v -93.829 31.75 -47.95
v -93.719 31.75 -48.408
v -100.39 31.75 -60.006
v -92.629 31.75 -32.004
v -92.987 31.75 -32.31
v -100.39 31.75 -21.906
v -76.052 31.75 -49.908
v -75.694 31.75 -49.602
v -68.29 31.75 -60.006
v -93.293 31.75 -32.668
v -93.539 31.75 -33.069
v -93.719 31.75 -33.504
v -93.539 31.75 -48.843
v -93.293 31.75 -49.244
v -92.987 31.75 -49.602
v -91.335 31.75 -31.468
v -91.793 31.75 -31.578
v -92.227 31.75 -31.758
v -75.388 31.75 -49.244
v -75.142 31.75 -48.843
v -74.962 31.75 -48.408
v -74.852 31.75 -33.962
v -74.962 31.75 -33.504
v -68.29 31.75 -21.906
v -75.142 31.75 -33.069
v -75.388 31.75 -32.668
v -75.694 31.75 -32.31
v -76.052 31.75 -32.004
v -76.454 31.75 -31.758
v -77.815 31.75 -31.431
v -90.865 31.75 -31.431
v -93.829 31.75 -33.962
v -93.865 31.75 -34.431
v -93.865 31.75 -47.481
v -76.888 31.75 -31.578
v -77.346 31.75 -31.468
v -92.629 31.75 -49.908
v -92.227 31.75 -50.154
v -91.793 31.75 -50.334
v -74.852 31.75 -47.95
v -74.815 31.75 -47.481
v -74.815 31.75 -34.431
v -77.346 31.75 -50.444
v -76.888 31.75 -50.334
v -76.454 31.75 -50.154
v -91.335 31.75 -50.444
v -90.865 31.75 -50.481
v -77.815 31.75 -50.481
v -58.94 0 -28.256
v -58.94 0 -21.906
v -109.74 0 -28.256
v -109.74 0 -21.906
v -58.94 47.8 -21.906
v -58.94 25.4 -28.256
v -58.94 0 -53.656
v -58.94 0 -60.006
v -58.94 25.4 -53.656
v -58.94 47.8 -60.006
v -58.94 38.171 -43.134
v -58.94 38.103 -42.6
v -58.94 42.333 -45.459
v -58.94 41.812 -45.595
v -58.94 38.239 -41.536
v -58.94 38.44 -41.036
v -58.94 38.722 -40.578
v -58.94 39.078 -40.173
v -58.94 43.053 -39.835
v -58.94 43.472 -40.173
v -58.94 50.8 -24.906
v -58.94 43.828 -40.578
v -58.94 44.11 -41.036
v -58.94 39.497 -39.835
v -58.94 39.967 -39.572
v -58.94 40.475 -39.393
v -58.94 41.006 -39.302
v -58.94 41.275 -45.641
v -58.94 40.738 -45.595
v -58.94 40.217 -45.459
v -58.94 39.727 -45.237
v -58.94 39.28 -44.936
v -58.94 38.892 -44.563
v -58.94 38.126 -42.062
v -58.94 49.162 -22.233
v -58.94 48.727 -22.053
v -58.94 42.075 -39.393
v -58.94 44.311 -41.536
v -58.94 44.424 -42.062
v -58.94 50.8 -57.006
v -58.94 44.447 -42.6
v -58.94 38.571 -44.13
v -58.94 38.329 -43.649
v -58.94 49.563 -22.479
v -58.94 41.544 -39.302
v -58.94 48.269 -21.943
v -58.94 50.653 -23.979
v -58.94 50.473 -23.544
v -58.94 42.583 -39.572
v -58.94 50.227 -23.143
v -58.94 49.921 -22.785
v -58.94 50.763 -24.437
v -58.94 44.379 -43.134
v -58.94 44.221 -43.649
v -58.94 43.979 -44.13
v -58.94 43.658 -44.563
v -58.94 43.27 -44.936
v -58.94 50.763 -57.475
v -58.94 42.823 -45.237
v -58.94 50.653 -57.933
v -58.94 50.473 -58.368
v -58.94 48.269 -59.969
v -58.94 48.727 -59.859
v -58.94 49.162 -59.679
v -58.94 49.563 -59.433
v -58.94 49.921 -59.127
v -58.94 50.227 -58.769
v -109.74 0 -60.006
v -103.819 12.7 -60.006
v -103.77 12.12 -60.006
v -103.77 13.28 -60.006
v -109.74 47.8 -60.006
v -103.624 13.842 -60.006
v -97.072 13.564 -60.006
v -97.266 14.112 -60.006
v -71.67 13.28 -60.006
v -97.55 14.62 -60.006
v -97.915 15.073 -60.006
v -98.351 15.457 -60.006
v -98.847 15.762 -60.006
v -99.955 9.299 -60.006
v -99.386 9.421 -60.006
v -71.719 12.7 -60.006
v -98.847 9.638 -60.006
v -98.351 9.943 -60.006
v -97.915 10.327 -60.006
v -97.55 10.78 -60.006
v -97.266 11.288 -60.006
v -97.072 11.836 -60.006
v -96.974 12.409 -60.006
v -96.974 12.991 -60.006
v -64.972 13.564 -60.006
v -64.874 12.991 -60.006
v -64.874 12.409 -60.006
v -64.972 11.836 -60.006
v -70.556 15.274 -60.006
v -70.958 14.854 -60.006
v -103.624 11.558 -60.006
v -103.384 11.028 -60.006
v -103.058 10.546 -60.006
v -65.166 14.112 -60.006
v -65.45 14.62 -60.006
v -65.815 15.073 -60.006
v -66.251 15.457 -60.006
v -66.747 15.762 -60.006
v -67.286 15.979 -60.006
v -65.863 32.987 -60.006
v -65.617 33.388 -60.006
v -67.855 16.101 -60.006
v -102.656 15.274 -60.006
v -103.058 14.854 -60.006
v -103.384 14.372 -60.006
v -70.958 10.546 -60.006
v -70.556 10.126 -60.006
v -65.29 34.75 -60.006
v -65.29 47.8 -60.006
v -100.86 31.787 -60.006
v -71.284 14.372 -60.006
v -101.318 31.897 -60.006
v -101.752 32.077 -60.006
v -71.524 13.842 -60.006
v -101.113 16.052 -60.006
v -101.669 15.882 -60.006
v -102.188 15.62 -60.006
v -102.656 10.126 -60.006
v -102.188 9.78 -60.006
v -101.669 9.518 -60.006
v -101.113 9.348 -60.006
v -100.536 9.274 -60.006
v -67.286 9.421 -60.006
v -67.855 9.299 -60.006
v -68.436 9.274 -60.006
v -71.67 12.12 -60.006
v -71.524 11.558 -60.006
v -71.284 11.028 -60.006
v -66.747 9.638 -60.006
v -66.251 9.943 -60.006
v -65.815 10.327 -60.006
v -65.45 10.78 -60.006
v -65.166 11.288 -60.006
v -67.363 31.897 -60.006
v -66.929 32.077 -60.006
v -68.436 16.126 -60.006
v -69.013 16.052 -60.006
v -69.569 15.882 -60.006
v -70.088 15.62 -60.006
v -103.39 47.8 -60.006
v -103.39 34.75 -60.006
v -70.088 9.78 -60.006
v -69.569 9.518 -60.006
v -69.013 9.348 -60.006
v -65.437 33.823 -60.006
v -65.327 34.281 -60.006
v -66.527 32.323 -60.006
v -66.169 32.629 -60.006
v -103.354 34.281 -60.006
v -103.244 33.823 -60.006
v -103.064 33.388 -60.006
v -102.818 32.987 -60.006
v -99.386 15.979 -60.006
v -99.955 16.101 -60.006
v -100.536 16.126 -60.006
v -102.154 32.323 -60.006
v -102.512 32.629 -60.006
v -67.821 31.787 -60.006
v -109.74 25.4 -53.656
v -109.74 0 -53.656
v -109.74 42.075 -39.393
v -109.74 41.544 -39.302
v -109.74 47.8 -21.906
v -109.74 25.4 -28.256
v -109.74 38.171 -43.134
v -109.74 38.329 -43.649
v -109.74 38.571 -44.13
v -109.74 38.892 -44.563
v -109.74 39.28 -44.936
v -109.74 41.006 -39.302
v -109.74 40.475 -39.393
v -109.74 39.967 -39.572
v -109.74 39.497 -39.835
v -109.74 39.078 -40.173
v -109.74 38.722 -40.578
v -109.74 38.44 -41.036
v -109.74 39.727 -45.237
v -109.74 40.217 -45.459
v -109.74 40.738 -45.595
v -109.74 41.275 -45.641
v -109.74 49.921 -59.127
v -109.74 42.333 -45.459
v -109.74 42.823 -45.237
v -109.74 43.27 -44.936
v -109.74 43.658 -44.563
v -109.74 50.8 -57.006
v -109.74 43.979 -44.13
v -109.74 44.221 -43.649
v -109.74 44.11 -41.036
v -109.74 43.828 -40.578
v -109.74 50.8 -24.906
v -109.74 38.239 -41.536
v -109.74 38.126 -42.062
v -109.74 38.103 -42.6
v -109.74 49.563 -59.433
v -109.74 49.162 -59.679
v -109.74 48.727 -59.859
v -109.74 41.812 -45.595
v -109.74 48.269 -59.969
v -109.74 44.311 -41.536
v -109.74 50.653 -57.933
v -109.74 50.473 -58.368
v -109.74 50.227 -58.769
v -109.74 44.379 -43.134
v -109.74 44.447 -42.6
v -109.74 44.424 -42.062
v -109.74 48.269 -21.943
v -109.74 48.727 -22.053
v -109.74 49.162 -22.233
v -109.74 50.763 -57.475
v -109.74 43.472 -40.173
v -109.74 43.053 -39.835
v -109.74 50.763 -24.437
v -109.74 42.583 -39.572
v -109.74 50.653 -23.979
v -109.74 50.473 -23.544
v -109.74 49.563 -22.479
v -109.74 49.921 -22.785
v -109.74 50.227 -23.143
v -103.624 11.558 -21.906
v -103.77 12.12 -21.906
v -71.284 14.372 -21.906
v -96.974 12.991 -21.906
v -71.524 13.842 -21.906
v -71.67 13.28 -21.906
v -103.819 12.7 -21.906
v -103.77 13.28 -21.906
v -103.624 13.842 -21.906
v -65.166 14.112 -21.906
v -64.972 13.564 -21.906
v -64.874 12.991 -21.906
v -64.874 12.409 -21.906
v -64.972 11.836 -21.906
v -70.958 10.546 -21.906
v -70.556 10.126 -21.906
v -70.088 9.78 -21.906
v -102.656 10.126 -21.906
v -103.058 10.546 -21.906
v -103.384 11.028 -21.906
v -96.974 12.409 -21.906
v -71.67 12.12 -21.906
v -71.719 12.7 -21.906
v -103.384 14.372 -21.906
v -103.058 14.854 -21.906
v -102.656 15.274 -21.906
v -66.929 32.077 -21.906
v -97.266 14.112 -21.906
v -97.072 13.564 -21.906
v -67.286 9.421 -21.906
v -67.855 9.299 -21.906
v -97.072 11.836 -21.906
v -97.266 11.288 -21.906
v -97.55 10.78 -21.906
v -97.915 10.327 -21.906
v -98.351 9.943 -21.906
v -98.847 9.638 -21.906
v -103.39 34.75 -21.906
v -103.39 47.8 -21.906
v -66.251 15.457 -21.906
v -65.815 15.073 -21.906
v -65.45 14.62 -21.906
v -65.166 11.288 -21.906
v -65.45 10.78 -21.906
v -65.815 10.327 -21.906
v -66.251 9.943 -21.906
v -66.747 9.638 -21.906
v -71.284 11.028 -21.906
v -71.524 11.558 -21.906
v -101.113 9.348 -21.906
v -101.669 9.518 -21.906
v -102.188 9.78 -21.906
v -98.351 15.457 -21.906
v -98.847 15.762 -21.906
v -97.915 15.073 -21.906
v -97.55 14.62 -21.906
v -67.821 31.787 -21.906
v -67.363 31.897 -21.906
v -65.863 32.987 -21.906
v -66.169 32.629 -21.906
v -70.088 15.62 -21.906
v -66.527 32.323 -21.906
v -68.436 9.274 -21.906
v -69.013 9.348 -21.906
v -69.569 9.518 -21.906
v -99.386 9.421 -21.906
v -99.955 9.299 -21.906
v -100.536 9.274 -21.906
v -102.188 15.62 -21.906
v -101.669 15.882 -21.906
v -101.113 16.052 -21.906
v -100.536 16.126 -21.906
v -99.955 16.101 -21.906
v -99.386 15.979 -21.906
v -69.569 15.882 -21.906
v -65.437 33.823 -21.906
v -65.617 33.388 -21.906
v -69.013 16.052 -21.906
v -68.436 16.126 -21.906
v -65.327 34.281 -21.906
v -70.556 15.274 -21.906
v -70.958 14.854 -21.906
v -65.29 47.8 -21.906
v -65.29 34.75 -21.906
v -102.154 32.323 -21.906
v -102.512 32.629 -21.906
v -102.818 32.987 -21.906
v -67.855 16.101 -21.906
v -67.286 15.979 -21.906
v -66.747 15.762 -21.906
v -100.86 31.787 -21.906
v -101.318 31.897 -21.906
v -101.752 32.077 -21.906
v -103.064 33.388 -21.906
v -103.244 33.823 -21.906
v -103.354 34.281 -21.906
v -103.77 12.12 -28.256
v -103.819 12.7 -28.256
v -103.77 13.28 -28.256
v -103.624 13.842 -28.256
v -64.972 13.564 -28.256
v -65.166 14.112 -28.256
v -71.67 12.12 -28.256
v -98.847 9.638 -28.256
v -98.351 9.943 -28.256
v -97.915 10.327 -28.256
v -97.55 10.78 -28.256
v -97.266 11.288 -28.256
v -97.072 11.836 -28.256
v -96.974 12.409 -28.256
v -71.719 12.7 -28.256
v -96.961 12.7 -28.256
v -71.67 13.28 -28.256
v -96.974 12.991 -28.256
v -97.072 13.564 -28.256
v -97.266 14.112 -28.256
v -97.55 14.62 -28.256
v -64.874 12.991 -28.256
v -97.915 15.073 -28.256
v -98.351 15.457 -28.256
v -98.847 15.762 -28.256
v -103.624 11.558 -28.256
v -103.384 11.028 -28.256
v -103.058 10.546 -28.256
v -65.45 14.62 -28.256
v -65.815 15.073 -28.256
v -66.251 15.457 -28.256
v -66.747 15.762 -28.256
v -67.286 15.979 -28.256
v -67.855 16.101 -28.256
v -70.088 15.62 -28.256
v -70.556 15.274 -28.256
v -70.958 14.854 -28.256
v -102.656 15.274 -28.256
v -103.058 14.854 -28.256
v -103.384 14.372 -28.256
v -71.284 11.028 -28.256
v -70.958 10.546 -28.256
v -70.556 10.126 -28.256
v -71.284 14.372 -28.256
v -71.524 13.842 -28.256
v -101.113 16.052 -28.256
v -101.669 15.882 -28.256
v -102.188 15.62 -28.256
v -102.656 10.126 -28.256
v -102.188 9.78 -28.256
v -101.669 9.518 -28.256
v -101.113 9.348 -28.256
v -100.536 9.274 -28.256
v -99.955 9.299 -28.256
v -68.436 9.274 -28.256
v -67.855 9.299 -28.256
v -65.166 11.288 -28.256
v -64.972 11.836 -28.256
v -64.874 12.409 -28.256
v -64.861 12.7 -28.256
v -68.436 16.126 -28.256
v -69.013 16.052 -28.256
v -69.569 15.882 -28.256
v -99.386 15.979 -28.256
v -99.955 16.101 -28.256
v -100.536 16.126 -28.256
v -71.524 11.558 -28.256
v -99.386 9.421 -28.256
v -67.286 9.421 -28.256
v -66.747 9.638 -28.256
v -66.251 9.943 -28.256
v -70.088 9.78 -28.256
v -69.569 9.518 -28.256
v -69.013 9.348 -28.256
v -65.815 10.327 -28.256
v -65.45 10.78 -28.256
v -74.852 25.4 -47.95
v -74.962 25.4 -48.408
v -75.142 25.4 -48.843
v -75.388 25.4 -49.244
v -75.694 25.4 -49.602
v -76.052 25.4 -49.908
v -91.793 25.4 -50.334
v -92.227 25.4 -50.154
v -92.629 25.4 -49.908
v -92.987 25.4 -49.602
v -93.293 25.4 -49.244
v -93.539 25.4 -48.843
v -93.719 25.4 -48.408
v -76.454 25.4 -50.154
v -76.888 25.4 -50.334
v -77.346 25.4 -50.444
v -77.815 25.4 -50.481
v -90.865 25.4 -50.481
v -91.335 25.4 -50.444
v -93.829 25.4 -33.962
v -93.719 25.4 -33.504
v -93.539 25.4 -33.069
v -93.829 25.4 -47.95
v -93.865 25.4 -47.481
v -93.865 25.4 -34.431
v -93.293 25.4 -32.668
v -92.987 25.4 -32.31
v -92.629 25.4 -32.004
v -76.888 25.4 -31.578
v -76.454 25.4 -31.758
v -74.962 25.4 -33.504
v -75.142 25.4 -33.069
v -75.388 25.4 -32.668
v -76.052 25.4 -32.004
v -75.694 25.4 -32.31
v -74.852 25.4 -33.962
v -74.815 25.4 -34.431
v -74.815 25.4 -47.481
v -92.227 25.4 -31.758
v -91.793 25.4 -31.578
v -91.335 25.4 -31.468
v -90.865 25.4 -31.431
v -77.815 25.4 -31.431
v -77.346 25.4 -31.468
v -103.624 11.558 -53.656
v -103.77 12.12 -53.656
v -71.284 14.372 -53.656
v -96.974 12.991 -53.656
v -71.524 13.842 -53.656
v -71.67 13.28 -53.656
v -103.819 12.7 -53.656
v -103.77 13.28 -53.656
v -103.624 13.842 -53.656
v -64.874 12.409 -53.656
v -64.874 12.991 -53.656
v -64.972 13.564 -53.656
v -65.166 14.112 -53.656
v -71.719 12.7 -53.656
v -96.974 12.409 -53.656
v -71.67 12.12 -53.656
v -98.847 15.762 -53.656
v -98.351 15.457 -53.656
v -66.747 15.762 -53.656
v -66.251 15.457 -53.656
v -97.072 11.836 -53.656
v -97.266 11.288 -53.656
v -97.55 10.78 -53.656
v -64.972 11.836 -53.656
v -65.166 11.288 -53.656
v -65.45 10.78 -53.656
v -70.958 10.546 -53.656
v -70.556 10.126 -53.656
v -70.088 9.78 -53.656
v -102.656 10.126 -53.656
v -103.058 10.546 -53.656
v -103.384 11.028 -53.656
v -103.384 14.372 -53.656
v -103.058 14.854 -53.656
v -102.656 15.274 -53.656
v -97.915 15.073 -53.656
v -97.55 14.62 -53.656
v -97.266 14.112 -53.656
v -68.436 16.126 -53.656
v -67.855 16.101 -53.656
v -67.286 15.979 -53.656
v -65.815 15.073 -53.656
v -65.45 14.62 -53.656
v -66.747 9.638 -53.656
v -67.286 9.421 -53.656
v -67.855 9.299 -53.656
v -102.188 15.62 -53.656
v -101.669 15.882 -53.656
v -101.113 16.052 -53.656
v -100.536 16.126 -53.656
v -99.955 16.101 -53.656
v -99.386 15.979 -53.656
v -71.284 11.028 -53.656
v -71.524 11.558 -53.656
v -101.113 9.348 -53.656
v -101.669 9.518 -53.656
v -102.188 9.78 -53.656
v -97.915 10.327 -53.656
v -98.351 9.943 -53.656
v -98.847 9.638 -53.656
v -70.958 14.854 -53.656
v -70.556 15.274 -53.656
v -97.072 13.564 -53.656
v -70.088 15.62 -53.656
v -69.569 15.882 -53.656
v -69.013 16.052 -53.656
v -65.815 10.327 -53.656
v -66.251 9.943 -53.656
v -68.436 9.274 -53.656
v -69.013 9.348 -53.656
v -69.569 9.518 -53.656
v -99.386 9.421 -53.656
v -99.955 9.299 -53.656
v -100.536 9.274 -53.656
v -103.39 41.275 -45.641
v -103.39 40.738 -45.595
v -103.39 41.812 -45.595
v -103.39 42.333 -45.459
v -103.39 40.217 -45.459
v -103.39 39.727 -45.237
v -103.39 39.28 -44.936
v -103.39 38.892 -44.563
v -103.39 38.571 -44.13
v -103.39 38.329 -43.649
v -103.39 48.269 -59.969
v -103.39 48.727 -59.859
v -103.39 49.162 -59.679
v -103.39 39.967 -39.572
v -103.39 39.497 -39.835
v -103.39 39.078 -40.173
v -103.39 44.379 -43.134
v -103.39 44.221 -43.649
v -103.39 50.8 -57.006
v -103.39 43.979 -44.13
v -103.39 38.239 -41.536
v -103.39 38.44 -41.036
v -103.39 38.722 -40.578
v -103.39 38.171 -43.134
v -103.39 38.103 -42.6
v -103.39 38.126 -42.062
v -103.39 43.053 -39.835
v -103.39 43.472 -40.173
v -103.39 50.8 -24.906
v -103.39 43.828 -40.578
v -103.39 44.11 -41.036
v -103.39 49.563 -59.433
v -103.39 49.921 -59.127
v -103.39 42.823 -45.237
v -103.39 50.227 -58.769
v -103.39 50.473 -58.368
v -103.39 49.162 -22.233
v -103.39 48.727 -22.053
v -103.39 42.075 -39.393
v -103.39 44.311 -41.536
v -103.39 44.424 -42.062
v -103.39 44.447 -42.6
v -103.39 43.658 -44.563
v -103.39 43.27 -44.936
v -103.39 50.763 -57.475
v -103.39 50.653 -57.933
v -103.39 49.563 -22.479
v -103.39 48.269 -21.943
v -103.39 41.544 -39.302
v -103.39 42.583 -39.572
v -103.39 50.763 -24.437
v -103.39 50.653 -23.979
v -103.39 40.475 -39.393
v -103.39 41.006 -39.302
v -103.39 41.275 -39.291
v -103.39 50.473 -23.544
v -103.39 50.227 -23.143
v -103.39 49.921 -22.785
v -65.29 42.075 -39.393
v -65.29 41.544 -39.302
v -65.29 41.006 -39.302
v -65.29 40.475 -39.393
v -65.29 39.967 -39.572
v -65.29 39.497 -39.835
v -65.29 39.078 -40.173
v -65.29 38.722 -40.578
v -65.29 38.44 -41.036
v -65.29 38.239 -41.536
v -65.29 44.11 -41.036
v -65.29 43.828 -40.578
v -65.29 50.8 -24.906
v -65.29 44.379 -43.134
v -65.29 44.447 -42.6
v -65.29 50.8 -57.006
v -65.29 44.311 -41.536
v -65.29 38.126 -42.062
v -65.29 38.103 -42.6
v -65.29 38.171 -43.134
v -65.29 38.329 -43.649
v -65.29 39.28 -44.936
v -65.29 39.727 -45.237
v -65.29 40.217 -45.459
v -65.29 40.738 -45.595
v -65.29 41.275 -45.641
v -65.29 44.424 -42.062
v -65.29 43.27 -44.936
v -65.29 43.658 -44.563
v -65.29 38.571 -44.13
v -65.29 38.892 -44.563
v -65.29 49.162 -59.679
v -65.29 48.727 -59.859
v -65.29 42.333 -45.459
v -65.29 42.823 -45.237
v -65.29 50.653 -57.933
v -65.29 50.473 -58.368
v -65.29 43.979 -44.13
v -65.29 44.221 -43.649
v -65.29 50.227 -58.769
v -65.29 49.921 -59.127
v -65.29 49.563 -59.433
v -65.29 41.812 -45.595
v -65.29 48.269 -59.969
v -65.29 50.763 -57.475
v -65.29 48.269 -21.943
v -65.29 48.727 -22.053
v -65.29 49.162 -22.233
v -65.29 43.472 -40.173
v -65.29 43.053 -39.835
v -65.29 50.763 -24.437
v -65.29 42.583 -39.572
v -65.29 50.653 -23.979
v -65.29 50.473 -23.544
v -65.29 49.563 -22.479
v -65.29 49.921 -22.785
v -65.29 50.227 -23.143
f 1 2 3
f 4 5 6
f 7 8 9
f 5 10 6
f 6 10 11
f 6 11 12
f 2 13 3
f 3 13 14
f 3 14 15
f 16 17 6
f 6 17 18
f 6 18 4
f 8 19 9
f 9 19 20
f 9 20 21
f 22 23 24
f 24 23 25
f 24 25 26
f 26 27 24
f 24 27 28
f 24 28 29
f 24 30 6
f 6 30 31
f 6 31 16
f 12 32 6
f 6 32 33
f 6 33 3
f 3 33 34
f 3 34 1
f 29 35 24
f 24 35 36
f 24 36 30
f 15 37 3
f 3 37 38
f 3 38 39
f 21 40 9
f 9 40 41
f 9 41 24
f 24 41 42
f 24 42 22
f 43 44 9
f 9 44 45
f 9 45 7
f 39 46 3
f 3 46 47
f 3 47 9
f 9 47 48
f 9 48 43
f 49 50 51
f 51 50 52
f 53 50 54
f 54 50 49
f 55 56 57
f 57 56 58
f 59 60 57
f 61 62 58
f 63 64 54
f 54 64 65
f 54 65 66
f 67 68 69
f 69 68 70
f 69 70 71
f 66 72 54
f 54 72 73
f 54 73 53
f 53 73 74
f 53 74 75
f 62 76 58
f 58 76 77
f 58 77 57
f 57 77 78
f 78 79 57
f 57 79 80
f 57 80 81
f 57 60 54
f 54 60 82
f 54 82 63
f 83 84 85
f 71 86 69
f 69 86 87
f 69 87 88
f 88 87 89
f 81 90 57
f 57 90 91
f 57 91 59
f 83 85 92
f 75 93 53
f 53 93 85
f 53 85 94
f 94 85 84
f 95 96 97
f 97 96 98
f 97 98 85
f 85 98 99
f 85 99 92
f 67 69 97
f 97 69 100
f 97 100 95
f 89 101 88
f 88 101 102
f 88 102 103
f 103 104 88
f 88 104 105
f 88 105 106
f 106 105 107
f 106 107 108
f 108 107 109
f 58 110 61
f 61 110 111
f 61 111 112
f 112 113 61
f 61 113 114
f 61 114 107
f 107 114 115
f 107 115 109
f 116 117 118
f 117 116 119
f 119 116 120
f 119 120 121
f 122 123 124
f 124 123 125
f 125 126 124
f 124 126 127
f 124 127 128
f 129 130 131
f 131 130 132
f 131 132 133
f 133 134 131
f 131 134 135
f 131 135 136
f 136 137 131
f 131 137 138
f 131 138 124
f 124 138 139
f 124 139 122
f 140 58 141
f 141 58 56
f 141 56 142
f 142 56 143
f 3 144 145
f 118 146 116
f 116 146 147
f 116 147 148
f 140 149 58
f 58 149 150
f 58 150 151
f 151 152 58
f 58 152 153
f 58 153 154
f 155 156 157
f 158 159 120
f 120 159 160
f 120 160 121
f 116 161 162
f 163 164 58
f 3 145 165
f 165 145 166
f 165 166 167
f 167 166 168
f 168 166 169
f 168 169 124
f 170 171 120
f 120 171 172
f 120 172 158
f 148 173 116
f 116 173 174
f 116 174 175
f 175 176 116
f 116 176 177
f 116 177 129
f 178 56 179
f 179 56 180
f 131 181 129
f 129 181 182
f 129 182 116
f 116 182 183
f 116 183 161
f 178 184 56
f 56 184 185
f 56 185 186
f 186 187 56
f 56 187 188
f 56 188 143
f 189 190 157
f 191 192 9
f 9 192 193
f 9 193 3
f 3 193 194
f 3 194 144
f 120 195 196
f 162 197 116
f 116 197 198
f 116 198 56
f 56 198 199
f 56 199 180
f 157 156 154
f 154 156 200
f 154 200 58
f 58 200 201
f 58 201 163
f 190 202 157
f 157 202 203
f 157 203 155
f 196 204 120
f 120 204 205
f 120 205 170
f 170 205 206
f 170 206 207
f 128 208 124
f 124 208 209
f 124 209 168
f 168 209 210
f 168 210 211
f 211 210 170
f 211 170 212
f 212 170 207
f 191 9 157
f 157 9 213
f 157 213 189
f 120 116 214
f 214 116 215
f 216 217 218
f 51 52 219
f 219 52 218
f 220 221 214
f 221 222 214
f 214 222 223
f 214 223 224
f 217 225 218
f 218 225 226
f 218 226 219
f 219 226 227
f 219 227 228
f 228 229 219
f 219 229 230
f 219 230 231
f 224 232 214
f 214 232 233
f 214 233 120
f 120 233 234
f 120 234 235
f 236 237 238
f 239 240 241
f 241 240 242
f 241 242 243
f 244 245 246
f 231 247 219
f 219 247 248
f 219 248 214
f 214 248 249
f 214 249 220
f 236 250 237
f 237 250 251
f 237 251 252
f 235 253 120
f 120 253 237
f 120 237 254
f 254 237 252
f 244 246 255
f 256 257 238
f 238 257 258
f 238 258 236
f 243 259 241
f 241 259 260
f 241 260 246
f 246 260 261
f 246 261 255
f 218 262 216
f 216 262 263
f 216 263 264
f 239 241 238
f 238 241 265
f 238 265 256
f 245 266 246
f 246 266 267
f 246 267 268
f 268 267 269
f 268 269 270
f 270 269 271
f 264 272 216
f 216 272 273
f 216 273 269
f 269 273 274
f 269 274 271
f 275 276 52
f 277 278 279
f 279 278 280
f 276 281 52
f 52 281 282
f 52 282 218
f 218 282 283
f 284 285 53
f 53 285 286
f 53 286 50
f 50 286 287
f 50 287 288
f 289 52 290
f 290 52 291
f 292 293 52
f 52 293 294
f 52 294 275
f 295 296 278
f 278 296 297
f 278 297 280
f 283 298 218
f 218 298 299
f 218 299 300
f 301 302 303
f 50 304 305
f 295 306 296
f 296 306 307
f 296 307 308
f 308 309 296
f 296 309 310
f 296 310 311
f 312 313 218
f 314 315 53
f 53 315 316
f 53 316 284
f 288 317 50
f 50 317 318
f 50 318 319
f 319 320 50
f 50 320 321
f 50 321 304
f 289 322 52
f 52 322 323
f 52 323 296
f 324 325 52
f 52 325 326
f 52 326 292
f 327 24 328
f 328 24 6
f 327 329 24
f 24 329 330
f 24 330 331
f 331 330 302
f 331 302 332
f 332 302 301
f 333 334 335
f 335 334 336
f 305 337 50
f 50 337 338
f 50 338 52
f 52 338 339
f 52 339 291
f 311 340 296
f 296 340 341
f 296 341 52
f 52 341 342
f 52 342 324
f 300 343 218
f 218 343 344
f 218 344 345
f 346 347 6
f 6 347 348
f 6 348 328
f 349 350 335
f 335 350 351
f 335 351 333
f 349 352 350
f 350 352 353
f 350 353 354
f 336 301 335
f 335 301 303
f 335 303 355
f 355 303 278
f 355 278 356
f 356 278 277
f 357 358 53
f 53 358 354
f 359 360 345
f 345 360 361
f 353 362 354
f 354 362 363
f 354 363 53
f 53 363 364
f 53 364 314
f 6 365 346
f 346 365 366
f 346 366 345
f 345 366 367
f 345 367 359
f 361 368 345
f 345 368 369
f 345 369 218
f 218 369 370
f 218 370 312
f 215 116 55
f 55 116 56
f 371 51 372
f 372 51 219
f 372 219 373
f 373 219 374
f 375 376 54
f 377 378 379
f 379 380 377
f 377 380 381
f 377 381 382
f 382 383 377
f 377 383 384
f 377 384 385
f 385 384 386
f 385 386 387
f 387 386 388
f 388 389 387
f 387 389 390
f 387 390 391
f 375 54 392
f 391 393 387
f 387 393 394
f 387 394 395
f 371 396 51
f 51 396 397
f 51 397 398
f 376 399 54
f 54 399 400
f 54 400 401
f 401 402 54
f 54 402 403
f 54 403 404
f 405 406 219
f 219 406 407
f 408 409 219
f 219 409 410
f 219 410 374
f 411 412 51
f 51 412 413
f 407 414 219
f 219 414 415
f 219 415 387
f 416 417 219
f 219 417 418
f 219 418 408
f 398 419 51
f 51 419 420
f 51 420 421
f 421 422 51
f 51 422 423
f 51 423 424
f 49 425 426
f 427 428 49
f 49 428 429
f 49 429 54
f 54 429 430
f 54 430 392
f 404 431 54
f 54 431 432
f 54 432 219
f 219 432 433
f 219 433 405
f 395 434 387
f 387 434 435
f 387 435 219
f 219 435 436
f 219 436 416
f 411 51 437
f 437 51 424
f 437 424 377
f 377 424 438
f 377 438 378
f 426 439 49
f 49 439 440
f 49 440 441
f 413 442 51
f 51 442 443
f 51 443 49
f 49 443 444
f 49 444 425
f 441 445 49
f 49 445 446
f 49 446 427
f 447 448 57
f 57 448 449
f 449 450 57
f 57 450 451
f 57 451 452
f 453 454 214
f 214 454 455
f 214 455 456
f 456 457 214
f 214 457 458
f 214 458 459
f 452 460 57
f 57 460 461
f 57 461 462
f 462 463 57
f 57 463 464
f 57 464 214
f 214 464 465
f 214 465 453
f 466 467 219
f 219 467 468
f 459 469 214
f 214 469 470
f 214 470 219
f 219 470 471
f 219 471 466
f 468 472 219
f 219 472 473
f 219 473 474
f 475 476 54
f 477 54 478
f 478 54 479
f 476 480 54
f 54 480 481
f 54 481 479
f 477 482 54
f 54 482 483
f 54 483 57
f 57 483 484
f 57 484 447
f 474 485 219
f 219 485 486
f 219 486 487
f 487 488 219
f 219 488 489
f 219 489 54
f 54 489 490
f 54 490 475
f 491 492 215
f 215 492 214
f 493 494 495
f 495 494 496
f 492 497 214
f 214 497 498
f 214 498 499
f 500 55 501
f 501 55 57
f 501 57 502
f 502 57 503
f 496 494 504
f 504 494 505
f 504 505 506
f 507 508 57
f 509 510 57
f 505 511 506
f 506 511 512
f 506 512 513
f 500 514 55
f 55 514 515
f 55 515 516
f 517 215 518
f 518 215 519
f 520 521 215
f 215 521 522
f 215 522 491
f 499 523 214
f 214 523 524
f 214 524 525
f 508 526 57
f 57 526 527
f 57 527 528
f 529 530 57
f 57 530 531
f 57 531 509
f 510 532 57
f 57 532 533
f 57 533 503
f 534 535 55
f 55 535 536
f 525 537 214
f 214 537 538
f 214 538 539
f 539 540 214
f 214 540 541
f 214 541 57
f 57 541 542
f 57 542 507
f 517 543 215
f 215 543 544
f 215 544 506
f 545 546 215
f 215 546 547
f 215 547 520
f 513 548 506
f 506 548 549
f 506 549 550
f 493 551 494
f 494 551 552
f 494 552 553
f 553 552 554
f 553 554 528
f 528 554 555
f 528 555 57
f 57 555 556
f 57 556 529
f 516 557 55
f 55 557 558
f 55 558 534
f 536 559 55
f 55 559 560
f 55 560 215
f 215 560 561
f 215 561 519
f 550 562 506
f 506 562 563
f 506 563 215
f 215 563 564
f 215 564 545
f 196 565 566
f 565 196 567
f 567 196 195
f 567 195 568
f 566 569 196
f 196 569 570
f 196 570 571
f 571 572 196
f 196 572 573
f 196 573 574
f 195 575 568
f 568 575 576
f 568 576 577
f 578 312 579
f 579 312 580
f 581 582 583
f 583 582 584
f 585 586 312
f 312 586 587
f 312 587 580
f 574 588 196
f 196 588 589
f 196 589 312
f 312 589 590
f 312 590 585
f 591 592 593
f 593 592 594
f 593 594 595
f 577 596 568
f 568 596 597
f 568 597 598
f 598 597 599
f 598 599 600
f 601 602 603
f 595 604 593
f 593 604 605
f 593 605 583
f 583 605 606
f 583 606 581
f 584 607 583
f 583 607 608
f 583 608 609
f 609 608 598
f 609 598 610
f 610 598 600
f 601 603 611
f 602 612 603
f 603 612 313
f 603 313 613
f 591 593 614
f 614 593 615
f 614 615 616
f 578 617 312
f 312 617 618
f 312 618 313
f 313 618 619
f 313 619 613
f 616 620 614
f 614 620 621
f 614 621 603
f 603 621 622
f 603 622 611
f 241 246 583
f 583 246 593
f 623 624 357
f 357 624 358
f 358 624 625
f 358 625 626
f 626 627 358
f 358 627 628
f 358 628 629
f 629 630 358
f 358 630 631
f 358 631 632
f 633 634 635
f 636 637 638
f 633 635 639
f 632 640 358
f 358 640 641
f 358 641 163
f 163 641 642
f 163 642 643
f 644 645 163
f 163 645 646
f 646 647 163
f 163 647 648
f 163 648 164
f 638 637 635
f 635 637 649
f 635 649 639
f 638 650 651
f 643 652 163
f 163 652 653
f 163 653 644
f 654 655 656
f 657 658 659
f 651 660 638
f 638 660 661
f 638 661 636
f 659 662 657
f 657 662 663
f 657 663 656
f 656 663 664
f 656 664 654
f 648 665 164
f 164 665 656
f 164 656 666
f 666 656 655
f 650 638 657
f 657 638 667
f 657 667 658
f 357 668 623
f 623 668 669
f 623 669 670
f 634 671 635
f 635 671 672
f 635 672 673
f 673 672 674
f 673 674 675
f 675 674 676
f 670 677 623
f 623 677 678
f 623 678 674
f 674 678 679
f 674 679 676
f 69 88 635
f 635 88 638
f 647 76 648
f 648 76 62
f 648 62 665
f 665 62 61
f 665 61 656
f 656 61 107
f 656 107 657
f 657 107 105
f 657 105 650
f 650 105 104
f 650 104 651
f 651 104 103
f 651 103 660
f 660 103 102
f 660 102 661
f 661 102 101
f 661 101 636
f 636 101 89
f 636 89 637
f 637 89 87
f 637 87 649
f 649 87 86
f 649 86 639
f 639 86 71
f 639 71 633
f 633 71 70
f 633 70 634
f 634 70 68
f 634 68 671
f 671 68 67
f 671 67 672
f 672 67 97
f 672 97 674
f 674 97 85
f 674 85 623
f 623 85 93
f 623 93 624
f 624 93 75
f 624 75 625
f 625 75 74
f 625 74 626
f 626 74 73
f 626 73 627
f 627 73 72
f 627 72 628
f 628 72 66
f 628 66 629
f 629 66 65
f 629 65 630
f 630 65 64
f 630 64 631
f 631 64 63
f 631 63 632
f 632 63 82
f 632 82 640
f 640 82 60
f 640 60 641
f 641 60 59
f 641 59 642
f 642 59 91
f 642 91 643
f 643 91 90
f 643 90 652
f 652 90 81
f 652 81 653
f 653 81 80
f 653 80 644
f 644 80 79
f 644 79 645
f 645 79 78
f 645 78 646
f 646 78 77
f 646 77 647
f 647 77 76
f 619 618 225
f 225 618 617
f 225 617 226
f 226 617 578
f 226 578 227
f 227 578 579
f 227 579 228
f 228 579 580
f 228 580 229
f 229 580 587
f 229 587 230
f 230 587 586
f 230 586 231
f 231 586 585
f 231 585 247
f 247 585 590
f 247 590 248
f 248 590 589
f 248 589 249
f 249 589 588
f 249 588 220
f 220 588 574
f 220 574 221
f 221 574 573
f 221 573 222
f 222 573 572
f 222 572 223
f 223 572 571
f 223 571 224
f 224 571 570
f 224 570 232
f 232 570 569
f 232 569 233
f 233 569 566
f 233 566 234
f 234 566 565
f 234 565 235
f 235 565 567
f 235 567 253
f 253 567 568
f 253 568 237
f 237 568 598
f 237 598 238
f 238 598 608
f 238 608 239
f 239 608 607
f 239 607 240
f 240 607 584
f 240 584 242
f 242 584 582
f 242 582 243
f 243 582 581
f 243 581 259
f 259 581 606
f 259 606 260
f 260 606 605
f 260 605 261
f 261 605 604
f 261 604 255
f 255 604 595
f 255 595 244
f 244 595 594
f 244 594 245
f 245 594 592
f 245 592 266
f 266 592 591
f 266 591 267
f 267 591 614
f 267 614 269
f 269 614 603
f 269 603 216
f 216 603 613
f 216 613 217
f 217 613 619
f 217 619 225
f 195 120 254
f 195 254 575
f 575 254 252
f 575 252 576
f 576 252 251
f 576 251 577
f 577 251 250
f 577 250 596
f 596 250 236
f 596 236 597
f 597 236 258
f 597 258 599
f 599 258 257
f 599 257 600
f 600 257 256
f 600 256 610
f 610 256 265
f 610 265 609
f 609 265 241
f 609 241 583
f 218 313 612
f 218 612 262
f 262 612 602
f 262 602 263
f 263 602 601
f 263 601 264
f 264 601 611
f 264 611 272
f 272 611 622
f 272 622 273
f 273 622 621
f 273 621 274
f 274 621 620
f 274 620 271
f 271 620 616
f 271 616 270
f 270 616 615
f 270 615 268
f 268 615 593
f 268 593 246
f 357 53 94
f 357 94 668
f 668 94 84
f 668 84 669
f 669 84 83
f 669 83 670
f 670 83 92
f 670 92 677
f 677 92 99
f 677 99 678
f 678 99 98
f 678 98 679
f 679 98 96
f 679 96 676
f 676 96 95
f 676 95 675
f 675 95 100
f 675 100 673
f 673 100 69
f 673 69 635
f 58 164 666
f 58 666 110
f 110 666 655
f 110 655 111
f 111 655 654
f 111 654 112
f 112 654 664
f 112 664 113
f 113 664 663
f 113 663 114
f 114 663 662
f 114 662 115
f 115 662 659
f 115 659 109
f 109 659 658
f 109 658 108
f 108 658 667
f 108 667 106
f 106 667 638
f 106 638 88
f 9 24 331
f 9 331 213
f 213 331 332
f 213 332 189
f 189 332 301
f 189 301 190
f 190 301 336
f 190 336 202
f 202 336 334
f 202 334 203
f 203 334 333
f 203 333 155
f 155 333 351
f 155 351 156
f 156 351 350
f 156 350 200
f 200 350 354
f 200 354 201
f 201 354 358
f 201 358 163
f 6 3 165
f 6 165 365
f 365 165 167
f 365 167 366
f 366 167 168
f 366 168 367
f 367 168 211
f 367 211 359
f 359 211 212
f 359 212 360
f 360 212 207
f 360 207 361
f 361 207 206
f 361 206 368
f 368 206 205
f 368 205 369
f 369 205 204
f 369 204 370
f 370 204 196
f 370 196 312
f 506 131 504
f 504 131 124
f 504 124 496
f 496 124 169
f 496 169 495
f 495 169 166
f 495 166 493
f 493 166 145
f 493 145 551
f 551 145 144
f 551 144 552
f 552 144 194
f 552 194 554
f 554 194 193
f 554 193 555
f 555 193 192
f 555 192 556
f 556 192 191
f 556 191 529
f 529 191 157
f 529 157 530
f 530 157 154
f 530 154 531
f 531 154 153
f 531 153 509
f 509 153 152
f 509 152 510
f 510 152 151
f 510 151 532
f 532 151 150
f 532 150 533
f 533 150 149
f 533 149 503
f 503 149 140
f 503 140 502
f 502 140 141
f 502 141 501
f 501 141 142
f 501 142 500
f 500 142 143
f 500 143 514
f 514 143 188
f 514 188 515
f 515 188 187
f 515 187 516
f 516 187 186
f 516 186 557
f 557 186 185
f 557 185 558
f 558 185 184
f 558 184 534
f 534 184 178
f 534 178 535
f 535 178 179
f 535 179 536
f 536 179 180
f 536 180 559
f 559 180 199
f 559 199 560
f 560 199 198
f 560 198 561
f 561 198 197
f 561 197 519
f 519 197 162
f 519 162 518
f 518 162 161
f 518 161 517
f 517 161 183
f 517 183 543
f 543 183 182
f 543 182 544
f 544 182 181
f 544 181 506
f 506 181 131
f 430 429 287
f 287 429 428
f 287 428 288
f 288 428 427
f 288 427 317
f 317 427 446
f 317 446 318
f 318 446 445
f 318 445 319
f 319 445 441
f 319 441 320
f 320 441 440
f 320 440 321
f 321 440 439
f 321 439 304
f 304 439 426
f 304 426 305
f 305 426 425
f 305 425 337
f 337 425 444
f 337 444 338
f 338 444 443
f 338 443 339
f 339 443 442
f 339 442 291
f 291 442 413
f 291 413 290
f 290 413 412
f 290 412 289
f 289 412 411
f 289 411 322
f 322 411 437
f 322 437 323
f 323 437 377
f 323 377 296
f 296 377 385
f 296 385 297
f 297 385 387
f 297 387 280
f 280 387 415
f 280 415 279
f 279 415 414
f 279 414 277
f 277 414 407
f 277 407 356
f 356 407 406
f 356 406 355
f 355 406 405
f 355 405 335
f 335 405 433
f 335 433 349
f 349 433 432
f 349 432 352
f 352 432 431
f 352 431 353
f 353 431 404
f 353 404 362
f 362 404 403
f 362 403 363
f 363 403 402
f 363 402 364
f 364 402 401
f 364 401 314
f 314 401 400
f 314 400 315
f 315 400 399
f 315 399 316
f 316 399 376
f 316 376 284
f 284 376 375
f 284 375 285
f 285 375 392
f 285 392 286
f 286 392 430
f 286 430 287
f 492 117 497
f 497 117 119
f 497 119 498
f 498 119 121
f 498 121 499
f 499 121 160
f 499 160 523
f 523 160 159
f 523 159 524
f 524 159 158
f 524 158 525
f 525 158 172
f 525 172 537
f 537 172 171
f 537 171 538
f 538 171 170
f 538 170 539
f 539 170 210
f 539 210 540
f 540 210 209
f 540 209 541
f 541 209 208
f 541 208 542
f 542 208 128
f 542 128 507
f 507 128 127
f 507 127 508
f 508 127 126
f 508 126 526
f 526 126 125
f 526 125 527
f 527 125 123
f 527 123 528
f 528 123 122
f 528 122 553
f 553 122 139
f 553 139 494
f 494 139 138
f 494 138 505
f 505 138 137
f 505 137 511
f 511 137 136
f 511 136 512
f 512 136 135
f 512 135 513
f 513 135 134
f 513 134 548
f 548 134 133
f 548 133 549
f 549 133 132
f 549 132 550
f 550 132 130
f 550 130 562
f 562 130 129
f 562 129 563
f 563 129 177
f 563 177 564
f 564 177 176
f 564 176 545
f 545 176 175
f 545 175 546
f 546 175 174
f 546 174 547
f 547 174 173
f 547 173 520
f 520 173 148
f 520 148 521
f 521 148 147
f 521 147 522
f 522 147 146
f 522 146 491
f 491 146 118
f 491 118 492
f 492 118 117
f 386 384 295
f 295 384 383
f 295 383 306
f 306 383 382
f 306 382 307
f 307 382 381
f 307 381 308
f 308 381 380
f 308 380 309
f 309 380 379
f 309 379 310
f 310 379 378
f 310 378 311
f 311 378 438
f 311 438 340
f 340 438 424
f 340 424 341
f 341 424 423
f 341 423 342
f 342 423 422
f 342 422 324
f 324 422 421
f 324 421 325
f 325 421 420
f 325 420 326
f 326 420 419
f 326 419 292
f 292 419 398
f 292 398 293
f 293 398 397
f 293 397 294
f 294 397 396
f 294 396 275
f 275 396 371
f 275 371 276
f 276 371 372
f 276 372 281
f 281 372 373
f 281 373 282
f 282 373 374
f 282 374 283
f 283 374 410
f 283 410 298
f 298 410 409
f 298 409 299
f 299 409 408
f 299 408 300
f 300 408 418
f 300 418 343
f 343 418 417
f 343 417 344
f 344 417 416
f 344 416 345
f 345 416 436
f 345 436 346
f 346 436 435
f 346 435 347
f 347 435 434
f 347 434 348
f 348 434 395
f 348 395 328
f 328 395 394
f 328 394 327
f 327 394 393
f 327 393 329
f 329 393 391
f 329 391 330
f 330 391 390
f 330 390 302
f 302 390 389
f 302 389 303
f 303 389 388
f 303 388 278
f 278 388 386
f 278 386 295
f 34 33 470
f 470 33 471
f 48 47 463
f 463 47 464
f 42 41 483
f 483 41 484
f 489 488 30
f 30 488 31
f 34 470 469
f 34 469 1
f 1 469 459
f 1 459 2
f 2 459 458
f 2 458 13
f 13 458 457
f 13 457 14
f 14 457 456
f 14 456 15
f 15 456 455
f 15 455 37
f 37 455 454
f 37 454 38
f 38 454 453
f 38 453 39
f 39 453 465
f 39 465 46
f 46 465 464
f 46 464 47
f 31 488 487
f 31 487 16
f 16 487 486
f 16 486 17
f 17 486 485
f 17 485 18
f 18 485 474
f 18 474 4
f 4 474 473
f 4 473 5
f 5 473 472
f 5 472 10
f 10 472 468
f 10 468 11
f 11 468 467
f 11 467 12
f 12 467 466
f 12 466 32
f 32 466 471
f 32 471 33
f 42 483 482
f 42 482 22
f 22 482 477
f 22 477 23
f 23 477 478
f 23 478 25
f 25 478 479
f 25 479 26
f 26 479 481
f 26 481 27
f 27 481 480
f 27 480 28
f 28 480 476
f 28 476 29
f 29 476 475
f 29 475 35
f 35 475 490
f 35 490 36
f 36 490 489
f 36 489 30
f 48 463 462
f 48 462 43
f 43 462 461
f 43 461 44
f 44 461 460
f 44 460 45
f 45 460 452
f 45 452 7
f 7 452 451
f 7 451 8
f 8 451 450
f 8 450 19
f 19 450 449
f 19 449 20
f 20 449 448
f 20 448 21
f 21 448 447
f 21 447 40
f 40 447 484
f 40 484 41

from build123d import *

# Parameters (mm, degrees)
SKETCH1_W               = 50.8
SKETCH1_H               = 38.1
BOSS_EXTRUDE1_DEPTH     = 31.75
SKETCH2_W               = 25.4
SKETCH2_H               = 25.4
CUT_EXTRUDE1_DEPTH      = 85.79053849
SKETCH3_W               = 6.35
SKETCH3_H               = 38.1
BOSS_EXTRUDE2_DEPTH     = 19.05
SKETCH4_W               = 6.35
SKETCH4_H               = 38.1
BOSS_EXTRUDE3_DEPTH     = 19.05
CUT_EXTRUDE2_DEPTH      = 91.317082645
CUT_EXTRUDE2_DEPTH_BACK = 91.317082645
SKETCH5_R               = 3.175
FILLET1_R               = 3
SKETCH6_R               = 3.429
CUT_EXTRUDE3_DEPTH      = 127.788108172
SKETCH7_R               = 3.429
CUT_EXTRUDE4_DEPTH      = 127.788108172
SKETCH8_W               = 19.05
SKETCH8_H               = 19.05
CUT_EXTRUDE5_DEPTH      = 130.041736625
FILLET2_R               = 3
FILLET3_R               = 3


with BuildPart() as part:
    # Sketch1 → Boss-Extrude1 (new body)
    with BuildSketch(Plane(origin=(0, 0, 0), x_dir=(1, 0, 0), z_dir=(0, 1, 0))):
        with Locations((-84.340486484, 40.956107335)):
            Rectangle(SKETCH1_W, SKETCH1_H)
    extrude(amount=BOSS_EXTRUDE1_DEPTH)

    # Sketch2 → Cut-Extrude1 (cut, through all)
    with BuildSketch(Plane(origin=(-58.940486484, 0, 0), x_dir=(0, 0, -1), z_dir=(1, 0, 0))):
        with Locations((40.956107335, 12.7)):
            Rectangle(SKETCH2_W, SKETCH2_H)
    extrude(amount=-CUT_EXTRUDE1_DEPTH, mode=Mode.SUBTRACT)

    # Sketch3 → Boss-Extrude2 (add)
    with BuildSketch(Plane(origin=(0, 31.75, 0), x_dir=(1, 0, 0), z_dir=(0, 1, 0))):
        with Locations((-106.565486484, 40.956107335)):
            Rectangle(SKETCH3_W, SKETCH3_H)
    extrude(amount=BOSS_EXTRUDE2_DEPTH)

    # Sketch4 → Boss-Extrude3 (add)
    with BuildSketch(Plane(origin=(0, 31.75, 0), x_dir=(1, 0, 0), z_dir=(0, 1, 0))):
        with Locations((-62.115486484, 40.956107335)):
            Rectangle(SKETCH4_W, SKETCH4_H)
    extrude(amount=BOSS_EXTRUDE3_DEPTH)

    # Sketch5 → Cut-Extrude2 (cut, two sides: drawn at the far end of the back side and taken through both)
    with BuildSketch(Plane(origin=(-103.390486484, 0, 0), x_dir=(0, 0, -1), z_dir=(1, 0, 0)).offset(-CUT_EXTRUDE2_DEPTH_BACK)):
        with Locations((42.465557169, 41.275)):
            Circle(SKETCH5_R)
    extrude(amount=CUT_EXTRUDE2_DEPTH + CUT_EXTRUDE2_DEPTH_BACK, mode=Mode.SUBTRACT)

    # Fillet1
    fillet1_edges = [part.edges().sort_by_distance(p)[0] for p in [
        (-106.565486484, 50.8, -60.006107335),
        (-106.565486484, 50.8, -21.906107335),
        (-62.115486484, 50.8, -21.906107335),
        (-62.115486484, 50.8, -60.006107335),
        (-65.290486484, 31.75, -40.956107335),
        (-103.390486484, 31.75, -40.956107335),
    ]]
    fillet(fillet1_edges, radius=FILLET1_R)

    # Sketch6 → Cut-Extrude3 (cut, through all)
    with BuildSketch(Plane(origin=(0, 0, -60.006107335), x_dir=(-1, 0, 0), z_dir=(0, 0, -1))):
        with Locations((68.290486484, 12.7)):
            Circle(SKETCH6_R)
    extrude(amount=-CUT_EXTRUDE3_DEPTH, mode=Mode.SUBTRACT)

    # Sketch7 → Cut-Extrude4 (cut, through all)
    with BuildSketch(Plane(origin=(0, 0, -60.006107335), x_dir=(-1, 0, 0), z_dir=(0, 0, -1))):
        with Locations((100.390486484, 12.7)):
            Circle(SKETCH7_R)
    extrude(amount=-CUT_EXTRUDE4_DEPTH, mode=Mode.SUBTRACT)

    # Sketch8 → Cut-Extrude5 (cut, through all)
    with BuildSketch(Plane(origin=(0, 31.75, 0), x_dir=(1, 0, 0), z_dir=(0, 1, 0))):
        with Locations((-84.340486484, 40.956107335)):
            Rectangle(SKETCH8_W, SKETCH8_H)
    extrude(amount=-CUT_EXTRUDE5_DEPTH, mode=Mode.SUBTRACT)

    # Fillet2
    fillet2_edges = [part.edges().sort_by_distance(p)[0] for p in [
        (-93.865486484, 28.575, -31.431107335),
        (-93.865486484, 28.575, -50.481107335),
    ]]
    fillet(fillet2_edges, radius=FILLET2_R)

    # Fillet3
    fillet3_edges = [part.edges().sort_by_distance(p)[0] for p in [
        (-74.815486484, 28.575, -50.481107335),
        (-74.815486484, 28.575, -31.431107335),
    ]]
    fillet(fillet3_edges, radius=FILLET3_R)


solid = part.part
